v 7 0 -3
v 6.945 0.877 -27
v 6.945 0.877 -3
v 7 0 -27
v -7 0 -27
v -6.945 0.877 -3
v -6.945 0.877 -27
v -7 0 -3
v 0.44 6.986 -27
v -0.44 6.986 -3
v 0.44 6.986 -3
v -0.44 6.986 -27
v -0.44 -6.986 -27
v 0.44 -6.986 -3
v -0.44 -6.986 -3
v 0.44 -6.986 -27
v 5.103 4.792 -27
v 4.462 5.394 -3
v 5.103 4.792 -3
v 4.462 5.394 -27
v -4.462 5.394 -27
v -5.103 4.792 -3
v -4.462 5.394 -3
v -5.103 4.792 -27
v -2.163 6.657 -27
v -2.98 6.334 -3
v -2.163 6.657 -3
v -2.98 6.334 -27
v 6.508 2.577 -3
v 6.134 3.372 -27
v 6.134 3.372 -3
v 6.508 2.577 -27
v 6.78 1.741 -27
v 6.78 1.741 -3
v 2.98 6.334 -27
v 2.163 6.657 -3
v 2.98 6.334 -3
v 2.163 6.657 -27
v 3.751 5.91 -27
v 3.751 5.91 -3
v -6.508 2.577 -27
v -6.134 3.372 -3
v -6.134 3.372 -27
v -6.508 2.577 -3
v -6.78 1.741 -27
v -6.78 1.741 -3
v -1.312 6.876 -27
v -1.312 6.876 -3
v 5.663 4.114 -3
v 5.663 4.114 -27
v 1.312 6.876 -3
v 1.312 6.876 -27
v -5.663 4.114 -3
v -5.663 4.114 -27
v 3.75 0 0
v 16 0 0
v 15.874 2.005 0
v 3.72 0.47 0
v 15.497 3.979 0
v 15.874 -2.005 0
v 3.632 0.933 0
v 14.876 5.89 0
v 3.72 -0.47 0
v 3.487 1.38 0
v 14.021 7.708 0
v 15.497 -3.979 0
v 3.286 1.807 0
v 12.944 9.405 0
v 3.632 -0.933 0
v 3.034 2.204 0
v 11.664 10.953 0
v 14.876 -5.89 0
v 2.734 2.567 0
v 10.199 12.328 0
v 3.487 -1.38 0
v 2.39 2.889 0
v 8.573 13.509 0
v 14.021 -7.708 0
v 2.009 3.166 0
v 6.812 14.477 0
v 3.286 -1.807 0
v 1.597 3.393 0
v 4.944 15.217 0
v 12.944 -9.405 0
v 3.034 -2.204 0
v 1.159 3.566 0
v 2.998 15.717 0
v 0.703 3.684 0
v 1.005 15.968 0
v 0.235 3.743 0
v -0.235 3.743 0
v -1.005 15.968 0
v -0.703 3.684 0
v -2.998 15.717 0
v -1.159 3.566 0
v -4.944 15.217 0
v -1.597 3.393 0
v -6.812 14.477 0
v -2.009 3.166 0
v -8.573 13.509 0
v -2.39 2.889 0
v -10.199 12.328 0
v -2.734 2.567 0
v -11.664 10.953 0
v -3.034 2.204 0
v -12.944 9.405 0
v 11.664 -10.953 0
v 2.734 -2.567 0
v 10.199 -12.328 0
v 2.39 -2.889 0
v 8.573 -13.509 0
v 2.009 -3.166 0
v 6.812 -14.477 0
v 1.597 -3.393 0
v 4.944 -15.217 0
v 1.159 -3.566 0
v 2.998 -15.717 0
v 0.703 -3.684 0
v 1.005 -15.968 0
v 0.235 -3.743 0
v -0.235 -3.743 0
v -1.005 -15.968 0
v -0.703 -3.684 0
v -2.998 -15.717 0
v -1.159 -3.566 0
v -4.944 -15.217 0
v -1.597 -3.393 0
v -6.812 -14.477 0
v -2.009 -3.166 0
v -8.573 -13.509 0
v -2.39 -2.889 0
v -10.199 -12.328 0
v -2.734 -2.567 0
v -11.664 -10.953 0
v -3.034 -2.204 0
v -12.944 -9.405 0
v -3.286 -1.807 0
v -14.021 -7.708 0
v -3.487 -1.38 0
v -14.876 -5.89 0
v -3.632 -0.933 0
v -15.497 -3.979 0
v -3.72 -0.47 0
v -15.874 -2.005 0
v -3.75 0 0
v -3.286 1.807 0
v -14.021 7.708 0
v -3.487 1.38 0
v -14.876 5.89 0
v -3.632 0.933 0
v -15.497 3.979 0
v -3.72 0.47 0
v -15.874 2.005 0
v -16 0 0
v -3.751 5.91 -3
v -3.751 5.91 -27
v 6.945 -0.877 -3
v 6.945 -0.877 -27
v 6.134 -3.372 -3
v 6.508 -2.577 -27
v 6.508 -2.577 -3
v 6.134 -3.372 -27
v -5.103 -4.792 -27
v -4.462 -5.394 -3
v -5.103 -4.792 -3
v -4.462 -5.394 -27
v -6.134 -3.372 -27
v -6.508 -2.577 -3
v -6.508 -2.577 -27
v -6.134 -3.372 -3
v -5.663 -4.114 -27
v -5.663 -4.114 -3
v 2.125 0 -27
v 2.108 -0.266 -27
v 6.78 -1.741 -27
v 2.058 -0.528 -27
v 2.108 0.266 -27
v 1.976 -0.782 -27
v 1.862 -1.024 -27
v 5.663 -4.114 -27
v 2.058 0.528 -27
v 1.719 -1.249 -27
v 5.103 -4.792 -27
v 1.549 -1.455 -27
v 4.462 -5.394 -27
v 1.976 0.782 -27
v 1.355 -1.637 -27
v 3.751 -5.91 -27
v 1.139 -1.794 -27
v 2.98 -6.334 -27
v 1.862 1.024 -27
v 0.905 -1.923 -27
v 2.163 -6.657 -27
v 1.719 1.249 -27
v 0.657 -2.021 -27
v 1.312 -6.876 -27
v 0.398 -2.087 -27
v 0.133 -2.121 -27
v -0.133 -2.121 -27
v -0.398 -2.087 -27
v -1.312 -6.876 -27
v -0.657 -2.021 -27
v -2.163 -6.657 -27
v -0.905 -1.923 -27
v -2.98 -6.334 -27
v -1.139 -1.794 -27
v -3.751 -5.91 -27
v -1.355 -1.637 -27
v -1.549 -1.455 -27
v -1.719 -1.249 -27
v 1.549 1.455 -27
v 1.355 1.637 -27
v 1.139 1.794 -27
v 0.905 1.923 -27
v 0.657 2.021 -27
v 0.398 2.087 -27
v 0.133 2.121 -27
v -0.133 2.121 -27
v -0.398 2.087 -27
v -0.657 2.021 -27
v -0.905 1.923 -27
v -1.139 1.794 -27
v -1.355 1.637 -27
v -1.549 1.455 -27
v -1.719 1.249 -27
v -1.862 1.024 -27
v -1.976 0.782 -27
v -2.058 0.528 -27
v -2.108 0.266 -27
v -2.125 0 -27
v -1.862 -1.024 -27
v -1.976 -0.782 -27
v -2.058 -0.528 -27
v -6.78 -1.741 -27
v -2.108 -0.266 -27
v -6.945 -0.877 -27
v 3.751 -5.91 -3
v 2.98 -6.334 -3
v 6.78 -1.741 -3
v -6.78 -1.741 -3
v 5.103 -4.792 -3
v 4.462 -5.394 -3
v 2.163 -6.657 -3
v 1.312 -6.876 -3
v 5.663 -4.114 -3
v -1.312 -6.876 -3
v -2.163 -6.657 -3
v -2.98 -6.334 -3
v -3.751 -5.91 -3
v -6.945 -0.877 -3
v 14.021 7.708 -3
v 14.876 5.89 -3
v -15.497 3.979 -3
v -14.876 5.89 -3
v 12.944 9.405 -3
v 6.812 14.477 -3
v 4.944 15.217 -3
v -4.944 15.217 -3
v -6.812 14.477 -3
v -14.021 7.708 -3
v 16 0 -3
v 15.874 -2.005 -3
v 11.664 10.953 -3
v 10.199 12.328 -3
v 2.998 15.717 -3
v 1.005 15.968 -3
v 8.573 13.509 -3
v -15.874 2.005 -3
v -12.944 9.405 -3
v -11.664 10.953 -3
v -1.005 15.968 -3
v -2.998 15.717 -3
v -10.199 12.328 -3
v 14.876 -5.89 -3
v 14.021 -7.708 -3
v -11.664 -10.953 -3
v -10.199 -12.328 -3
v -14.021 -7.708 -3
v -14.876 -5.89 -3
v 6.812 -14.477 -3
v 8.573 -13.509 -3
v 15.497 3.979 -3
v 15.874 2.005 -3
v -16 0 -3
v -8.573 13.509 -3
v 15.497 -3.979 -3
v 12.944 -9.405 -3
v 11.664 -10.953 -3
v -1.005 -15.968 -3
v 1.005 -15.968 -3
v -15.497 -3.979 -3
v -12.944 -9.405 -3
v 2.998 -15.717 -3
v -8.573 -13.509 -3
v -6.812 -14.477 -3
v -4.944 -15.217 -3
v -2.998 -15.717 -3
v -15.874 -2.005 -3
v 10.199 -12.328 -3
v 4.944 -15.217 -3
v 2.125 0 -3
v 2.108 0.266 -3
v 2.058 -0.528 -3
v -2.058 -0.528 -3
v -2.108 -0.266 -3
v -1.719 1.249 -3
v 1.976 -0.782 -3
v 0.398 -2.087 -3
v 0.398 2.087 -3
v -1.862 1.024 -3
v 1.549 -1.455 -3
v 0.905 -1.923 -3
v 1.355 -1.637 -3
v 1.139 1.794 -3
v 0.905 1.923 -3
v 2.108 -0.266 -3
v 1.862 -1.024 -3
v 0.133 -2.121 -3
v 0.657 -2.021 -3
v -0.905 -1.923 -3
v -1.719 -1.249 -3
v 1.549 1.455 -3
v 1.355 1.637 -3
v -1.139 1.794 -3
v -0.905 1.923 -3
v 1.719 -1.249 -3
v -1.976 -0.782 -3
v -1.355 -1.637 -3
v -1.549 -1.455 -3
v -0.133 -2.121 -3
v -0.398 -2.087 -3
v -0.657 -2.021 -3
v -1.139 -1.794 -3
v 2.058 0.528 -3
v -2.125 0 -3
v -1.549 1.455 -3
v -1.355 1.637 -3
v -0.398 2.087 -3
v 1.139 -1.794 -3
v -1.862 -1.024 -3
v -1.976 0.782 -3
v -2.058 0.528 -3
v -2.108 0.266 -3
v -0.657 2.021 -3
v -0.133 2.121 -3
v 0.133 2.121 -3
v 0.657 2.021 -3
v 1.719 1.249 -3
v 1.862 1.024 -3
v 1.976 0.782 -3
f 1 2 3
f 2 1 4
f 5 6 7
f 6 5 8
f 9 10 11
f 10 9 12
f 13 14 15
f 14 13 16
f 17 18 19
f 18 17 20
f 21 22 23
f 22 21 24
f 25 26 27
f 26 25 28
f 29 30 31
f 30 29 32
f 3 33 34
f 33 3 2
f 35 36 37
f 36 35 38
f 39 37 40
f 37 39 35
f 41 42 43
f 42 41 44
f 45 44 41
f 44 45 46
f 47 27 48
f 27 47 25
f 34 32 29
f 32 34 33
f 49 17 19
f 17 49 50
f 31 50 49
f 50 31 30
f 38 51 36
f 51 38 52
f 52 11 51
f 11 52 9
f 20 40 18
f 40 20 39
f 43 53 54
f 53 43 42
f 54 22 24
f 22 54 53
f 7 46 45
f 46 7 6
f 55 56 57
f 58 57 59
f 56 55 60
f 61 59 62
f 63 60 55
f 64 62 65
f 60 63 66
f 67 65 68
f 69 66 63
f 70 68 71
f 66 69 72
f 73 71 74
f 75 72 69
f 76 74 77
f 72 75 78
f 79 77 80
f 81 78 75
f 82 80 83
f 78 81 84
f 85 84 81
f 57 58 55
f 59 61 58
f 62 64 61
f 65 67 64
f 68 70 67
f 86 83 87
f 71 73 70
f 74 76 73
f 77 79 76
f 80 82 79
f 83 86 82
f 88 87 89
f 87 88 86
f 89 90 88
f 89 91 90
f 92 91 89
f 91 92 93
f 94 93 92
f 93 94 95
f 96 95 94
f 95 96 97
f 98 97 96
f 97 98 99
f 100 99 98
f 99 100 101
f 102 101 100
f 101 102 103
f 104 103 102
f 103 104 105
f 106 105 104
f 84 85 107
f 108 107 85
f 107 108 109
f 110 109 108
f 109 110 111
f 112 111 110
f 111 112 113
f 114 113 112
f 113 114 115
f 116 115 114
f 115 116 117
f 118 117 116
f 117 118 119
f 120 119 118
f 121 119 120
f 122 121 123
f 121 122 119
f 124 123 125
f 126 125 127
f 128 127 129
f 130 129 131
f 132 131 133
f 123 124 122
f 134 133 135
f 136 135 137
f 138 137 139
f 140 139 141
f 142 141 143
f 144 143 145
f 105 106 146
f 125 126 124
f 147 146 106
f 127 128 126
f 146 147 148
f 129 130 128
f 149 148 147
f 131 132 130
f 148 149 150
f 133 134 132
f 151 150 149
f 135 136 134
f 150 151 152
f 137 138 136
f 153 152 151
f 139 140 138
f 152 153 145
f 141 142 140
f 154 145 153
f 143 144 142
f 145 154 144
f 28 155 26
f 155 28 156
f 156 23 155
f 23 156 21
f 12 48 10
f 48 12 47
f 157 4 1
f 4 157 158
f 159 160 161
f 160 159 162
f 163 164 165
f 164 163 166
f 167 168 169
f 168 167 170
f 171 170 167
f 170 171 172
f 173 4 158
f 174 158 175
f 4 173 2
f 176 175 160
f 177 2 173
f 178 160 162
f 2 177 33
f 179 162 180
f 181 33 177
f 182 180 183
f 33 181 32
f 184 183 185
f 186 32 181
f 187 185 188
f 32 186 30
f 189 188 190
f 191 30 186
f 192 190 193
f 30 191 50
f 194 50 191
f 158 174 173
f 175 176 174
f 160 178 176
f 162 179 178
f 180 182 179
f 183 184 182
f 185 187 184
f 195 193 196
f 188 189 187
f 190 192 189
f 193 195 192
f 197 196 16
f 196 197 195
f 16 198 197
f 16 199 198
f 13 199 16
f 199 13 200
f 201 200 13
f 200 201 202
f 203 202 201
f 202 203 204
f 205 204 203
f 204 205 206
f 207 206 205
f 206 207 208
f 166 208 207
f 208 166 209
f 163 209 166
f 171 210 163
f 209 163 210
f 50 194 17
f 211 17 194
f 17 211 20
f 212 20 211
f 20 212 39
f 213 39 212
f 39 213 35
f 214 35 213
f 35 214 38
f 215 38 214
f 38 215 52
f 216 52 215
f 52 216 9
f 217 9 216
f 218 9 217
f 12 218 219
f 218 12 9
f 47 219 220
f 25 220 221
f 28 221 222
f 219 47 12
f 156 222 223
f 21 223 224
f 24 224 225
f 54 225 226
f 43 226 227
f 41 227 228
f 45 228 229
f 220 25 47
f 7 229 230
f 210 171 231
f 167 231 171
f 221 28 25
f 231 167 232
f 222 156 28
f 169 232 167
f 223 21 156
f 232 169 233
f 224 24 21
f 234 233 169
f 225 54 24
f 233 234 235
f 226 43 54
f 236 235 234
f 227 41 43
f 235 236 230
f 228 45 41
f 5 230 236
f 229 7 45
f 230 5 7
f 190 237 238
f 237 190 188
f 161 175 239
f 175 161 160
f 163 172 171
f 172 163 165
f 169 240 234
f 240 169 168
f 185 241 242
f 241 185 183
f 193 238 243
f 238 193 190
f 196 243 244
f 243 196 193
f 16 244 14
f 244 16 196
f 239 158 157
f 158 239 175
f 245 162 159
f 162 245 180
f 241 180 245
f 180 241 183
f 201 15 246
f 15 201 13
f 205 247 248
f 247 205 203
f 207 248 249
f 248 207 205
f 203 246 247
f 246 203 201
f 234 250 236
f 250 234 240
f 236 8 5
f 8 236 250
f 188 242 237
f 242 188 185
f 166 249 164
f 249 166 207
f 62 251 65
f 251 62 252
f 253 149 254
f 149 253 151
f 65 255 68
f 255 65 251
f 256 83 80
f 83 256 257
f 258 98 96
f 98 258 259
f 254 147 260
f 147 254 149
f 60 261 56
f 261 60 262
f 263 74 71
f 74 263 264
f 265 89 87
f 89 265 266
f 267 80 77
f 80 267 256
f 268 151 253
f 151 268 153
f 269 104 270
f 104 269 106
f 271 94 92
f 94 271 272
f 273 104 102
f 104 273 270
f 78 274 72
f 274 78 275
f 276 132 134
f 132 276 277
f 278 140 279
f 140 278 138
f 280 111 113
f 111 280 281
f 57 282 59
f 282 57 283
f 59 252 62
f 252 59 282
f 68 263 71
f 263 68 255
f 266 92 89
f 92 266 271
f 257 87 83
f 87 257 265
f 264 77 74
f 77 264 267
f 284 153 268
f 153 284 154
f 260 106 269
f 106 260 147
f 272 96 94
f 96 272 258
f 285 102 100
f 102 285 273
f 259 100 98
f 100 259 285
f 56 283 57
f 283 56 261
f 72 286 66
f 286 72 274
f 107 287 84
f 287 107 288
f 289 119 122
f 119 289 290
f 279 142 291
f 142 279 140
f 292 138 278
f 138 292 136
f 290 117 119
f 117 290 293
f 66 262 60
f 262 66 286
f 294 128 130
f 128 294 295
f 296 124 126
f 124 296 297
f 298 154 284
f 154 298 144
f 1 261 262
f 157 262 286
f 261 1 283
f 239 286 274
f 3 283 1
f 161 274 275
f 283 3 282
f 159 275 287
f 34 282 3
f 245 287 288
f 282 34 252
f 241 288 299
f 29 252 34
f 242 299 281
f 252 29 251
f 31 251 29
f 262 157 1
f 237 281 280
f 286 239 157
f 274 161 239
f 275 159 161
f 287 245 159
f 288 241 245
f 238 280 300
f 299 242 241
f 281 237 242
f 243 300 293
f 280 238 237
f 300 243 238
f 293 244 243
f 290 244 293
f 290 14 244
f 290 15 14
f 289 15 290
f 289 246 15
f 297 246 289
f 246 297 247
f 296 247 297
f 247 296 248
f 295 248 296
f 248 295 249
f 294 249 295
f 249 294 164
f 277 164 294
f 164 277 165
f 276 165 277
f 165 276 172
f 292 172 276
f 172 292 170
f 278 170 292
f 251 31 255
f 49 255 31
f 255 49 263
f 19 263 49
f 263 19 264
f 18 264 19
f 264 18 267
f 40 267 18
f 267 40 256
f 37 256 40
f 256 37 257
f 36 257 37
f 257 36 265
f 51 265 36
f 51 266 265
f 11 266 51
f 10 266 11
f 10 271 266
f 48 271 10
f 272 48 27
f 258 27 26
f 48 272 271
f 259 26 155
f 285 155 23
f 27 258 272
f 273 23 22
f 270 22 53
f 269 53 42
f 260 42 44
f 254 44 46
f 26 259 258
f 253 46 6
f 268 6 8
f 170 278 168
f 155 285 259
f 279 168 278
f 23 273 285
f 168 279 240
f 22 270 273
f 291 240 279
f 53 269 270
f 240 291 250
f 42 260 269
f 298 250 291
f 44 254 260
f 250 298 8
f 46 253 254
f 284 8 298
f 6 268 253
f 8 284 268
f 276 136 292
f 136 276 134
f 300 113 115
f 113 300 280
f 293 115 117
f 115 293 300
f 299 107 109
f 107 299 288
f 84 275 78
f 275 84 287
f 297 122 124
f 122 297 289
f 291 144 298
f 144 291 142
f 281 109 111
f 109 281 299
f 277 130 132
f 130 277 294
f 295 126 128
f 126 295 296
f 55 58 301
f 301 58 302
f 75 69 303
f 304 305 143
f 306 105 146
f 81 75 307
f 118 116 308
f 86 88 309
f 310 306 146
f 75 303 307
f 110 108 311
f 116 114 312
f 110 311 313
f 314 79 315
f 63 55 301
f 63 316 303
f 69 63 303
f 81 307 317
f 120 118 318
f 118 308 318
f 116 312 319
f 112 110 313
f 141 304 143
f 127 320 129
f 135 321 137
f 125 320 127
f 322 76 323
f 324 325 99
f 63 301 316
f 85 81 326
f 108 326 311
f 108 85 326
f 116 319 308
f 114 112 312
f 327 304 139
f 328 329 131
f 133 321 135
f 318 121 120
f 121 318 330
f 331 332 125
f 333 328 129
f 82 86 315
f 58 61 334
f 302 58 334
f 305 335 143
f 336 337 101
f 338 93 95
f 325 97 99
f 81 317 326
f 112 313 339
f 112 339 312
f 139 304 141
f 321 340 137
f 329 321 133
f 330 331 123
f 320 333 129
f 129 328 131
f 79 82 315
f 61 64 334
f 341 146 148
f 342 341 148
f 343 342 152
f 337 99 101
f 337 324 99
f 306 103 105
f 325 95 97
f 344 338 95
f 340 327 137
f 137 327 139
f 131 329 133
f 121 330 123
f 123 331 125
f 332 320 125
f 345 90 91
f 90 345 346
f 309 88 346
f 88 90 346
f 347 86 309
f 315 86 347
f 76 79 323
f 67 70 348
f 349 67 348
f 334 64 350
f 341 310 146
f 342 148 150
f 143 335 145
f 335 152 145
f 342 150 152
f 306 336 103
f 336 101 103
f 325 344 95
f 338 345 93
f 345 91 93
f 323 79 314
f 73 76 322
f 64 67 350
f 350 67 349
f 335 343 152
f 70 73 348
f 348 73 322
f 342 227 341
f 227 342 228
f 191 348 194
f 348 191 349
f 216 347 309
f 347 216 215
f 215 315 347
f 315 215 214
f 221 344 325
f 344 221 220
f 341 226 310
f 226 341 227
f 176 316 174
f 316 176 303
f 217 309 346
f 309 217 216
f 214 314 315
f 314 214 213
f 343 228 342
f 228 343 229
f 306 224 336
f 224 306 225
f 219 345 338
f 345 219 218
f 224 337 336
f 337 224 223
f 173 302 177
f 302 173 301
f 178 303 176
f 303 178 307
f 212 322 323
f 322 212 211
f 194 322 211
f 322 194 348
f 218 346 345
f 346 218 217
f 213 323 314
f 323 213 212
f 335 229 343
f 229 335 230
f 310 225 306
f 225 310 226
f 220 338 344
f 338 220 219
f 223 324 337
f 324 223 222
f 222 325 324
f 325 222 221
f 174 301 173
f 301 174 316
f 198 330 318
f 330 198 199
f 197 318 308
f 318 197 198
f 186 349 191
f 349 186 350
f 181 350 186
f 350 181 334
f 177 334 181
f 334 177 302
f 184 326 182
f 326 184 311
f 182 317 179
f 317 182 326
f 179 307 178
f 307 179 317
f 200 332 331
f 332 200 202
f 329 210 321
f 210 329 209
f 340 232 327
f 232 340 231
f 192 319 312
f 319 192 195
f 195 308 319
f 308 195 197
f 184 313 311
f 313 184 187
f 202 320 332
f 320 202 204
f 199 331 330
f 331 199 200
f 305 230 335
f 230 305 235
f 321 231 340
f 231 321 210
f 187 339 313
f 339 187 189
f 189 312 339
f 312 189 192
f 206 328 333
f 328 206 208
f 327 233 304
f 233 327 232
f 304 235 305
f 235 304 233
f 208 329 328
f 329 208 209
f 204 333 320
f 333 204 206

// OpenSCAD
$fn = 50;


difference() {
	union() {
		translate(v = [0, 0, -27.0000000000]) {
			cylinder(h = 27, r = 7.0000000000);
		}
		translate(v = [0, 0, -3.0000000000]) {
			cylinder(h = 3, r = 16.0000000000);
		}
	}
	union() {
		translate(v = [0, 0, 0]) {
			rotate(a = [0, 0, 0]) {
				difference() {
					union() {
						#translate(v = [0, 0, -27.0000000000]) {
							cylinder(h = 27, r = 2.0000000000);
						}
						#translate(v = [0, 0, -3]) {
							cylinder(h = 3, r = 7.0000000000, r1 = 2.1250000000, r2 = 3.7500000000);
						}
						#translate(v = [0, 0, -27.0000000000]) {
							cylinder(h = 27, r = 2.1250000000);
						}
						#translate(v = [0, 0, -27.0000000000]) {
							cylinder(h = 27, r = 2.0000000000);
						}
					}
					union();
				}
			}
		}
	}
}
